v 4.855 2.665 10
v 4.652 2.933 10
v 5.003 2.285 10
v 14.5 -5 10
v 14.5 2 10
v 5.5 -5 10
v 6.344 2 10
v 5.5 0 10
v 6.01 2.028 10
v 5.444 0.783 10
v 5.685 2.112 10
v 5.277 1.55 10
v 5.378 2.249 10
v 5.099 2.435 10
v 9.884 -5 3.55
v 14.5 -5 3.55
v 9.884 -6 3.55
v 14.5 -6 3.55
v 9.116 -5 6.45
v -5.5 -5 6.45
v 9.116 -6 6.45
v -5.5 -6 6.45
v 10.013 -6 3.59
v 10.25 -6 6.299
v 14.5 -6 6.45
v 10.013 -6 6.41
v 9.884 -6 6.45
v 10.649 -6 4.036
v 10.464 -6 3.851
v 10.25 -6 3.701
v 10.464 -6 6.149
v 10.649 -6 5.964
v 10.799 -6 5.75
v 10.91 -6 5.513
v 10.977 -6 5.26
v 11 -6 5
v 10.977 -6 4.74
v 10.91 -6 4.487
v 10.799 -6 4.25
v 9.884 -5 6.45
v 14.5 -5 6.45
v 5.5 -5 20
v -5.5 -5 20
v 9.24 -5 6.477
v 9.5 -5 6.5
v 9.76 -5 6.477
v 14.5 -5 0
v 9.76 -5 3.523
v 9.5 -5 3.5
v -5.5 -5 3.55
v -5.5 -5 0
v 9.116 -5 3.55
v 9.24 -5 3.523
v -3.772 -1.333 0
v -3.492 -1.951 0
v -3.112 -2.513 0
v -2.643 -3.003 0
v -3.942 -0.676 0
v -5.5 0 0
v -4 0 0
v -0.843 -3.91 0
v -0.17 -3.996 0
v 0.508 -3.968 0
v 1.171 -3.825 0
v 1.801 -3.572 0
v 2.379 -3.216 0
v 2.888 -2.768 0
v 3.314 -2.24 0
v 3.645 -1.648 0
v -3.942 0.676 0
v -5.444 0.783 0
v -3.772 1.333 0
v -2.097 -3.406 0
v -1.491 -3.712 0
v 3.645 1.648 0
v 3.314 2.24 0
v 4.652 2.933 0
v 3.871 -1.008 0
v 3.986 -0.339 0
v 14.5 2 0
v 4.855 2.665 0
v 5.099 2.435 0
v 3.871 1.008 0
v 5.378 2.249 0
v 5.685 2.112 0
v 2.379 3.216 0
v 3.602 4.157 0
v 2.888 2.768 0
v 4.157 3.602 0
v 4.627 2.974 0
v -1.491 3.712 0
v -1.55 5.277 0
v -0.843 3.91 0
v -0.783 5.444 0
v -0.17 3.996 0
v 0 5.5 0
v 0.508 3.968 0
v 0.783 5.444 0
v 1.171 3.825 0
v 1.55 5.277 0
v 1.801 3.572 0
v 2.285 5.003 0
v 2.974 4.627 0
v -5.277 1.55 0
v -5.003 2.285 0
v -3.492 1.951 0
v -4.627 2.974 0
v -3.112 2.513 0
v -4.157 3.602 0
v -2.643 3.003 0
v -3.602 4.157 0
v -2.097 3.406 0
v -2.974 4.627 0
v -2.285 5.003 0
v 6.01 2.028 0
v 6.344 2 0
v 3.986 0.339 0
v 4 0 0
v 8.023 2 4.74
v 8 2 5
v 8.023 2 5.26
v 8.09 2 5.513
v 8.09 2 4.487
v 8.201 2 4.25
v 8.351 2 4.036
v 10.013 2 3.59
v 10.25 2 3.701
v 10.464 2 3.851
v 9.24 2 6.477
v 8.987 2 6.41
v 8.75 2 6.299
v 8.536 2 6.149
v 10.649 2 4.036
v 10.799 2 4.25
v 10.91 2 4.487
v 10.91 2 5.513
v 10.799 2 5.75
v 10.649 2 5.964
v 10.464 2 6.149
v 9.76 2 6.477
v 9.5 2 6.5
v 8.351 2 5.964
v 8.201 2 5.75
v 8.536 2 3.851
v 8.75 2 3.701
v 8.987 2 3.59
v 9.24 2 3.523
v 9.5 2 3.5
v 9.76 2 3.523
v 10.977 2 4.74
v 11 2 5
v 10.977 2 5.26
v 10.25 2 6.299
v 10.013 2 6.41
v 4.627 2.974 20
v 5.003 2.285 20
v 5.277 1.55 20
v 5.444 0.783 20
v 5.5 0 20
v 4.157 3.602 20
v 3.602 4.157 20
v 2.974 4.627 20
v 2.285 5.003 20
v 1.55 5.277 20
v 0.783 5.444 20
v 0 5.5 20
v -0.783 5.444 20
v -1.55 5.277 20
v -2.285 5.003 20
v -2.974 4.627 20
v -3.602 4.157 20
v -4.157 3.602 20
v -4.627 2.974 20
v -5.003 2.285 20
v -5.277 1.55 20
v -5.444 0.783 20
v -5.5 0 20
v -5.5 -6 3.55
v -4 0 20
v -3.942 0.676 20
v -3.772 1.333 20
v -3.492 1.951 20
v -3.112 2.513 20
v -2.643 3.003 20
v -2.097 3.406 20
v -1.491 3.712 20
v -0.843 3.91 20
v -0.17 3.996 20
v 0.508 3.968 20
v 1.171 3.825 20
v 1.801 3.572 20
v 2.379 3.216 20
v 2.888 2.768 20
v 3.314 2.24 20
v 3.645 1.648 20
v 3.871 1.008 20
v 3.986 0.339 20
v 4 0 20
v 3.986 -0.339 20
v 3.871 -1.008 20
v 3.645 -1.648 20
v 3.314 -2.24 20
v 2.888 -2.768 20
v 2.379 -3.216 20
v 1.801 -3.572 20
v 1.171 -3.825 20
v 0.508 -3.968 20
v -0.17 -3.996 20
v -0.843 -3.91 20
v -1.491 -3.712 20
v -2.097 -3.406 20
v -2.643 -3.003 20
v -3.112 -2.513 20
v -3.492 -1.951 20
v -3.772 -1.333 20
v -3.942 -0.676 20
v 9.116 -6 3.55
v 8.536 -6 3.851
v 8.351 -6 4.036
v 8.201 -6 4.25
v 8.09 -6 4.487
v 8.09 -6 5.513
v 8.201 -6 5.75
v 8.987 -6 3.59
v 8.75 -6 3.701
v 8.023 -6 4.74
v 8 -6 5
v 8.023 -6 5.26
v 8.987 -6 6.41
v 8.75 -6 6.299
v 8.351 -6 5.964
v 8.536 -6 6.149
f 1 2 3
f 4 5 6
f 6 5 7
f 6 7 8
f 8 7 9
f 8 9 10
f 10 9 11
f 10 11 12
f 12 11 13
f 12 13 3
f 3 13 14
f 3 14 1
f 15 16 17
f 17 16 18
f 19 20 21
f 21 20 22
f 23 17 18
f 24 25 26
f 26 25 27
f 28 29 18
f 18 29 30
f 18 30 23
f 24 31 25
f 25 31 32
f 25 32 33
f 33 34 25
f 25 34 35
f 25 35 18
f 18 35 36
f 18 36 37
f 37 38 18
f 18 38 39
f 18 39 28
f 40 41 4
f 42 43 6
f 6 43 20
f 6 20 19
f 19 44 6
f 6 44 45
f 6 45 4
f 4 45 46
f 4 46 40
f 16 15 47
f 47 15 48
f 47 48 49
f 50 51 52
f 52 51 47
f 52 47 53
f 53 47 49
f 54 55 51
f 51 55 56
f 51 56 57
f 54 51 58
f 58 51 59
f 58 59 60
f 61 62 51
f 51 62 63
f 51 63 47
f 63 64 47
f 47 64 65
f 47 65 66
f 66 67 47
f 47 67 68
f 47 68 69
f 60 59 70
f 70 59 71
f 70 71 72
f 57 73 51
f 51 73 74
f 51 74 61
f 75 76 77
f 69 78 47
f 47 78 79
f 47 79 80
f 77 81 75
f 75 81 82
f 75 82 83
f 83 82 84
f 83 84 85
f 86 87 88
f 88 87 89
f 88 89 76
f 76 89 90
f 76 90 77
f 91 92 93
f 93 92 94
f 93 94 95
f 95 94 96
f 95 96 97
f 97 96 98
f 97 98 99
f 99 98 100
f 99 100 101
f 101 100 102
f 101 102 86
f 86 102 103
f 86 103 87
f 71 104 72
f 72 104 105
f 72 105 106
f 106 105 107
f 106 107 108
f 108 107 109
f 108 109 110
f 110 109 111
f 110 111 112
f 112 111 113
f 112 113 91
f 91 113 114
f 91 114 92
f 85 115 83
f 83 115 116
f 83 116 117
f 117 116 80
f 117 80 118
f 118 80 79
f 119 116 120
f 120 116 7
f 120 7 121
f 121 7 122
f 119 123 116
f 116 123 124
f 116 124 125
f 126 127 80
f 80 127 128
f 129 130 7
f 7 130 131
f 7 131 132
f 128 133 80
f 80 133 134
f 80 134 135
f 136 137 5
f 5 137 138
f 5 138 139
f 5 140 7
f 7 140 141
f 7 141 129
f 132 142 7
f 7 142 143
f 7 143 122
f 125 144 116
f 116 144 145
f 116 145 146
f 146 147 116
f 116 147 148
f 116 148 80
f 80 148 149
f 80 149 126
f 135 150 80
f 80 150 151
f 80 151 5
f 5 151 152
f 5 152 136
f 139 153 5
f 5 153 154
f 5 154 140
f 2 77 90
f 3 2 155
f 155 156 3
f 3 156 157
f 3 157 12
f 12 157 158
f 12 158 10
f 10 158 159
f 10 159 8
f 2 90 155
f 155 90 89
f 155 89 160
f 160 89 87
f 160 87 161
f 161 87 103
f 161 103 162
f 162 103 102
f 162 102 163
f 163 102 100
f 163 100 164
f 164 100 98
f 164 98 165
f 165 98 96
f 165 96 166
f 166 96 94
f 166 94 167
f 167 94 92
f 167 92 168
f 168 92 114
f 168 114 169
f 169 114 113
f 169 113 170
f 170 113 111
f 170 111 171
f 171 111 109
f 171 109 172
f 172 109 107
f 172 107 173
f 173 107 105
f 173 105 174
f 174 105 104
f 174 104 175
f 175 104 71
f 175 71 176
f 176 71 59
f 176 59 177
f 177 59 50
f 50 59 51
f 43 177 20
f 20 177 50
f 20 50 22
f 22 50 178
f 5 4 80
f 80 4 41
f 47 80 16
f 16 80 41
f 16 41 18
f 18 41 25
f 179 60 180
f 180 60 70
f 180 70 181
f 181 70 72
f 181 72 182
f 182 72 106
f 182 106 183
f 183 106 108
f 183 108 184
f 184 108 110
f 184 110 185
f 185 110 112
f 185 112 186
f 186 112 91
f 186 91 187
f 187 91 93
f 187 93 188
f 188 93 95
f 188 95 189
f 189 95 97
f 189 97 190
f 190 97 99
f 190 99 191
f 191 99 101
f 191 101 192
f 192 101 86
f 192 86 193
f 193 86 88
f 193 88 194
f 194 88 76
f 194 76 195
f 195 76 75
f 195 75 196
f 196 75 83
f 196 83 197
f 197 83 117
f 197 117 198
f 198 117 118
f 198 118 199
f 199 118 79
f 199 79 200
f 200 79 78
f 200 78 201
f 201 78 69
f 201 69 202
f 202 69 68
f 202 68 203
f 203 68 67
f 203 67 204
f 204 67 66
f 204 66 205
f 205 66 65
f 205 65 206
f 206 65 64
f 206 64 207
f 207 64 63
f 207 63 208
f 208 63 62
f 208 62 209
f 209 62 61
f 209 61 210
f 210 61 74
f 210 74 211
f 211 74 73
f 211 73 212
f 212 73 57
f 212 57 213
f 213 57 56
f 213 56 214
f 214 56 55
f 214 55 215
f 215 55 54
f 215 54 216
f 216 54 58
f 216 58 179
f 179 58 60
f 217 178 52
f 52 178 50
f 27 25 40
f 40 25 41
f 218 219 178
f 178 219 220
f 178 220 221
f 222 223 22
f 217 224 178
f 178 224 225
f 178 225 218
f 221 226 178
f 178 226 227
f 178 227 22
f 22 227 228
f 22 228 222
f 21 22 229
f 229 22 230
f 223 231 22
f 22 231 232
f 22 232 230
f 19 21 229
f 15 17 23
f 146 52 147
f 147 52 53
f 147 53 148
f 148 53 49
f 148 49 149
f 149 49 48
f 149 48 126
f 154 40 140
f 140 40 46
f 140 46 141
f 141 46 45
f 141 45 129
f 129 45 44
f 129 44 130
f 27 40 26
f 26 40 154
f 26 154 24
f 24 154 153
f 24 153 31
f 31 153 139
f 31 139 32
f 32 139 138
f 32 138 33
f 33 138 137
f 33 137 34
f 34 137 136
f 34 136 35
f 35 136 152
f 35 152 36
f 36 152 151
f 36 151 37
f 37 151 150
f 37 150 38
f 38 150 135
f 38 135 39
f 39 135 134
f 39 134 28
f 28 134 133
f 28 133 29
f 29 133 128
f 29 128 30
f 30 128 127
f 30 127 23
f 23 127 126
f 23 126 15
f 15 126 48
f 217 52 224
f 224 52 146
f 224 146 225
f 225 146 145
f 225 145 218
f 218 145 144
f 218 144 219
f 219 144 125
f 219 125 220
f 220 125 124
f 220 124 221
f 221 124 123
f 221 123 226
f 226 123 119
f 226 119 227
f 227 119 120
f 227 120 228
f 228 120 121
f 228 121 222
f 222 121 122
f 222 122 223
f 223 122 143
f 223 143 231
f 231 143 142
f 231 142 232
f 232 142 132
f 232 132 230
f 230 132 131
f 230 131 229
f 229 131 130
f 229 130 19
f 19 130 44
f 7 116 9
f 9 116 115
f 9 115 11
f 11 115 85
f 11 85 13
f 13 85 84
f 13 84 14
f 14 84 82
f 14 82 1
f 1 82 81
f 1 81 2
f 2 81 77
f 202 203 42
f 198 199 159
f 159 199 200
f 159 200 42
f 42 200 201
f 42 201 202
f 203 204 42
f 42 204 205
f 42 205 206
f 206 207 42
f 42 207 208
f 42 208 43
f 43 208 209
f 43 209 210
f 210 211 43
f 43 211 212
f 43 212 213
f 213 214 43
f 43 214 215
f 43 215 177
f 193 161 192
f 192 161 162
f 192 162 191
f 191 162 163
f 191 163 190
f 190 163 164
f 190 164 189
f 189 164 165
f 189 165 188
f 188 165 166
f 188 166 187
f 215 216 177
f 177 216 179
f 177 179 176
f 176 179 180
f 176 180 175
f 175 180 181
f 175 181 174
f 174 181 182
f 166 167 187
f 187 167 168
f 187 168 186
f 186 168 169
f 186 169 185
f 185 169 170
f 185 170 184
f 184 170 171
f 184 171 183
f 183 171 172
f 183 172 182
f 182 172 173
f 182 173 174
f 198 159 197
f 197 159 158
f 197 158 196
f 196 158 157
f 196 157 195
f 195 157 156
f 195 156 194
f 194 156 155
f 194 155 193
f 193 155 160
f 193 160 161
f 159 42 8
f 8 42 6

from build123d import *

# Parameters (mm, degrees)
SKETCH1_R                       = 4
MAIN_DEPTH                      = 10
SKETCH3_W                       = 20
SKETCH3_H                       = 2.9
MAKERBEAMRECTANGULARGUIDE_DEPTH = 1
SKETCH4_R                       = 1.5
MAKERBEAMFIXHOLE_DEPTH          = 9
FILLET1_R                       = 2
SKETCH5_R                       = 4
BOSS_EXTRUDE1_DEPTH             = 10


with BuildPart() as part:
    # Sketch1 → Main (new body)
    with BuildSketch(Plane.XY):
        with BuildLine():
            Line((-5.5, 0), (-5.5, -5))
            Line((-5.5, -5), (14.5, -5))
            Line((14.5, -5), (14.5, 2))
            Line((14.5, 2), (5.123475383, 2))
            ThreePointArc((5.123475383, 2), (-1.017567048, 5.405049242), (-5.5, 0))
        make_face()
        Circle(SKETCH1_R, mode=Mode.SUBTRACT)
    extrude(amount=MAIN_DEPTH)

    # Sketch3 → MakerBeamRectangularGuide (add)
    with BuildSketch(Plane(origin=(0, -5, 0), x_dir=(-1, 0, 0), z_dir=(0, -1, 0))):
        with Locations((-4.5, -5)):
            Rectangle(SKETCH3_W, SKETCH3_H)
    extrude(amount=MAKERBEAMRECTANGULARGUIDE_DEPTH)

    # Sketch4 → MakerBeamFixHole (cut, through all)
    with BuildSketch(Plane(origin=(0, 2, 0), x_dir=(1, 0, 0), z_dir=(0, 1, 0))):
        with Locations((9.5, -5)):
            Circle(SKETCH4_R)
    extrude(amount=-MAKERBEAMFIXHOLE_DEPTH, mode=Mode.SUBTRACT)

    # Fillet1
    fillet1_edges = [part.edges().sort_by_distance(p)[0] for p in [
        (5.123475383, 2, 5),
    ]]
    fillet(fillet1_edges, radius=FILLET1_R)

    # Sketch5 → Boss-Extrude1 (add)
    with BuildSketch(Plane.XY.offset(10)):
        with BuildLine():
            Line((-5.5, -5), (5.5, -5))
            Line((5.5, -5), (5.5, 0))
            ThreePointArc((5.5, 0), (0, 5.5), (-5.5, 0))
            Line((-5.5, 0), (-5.5, -5))
        make_face()
        Circle(SKETCH5_R, mode=Mode.SUBTRACT)
    extrude(amount=BOSS_EXTRUDE1_DEPTH)


solid = part.part
